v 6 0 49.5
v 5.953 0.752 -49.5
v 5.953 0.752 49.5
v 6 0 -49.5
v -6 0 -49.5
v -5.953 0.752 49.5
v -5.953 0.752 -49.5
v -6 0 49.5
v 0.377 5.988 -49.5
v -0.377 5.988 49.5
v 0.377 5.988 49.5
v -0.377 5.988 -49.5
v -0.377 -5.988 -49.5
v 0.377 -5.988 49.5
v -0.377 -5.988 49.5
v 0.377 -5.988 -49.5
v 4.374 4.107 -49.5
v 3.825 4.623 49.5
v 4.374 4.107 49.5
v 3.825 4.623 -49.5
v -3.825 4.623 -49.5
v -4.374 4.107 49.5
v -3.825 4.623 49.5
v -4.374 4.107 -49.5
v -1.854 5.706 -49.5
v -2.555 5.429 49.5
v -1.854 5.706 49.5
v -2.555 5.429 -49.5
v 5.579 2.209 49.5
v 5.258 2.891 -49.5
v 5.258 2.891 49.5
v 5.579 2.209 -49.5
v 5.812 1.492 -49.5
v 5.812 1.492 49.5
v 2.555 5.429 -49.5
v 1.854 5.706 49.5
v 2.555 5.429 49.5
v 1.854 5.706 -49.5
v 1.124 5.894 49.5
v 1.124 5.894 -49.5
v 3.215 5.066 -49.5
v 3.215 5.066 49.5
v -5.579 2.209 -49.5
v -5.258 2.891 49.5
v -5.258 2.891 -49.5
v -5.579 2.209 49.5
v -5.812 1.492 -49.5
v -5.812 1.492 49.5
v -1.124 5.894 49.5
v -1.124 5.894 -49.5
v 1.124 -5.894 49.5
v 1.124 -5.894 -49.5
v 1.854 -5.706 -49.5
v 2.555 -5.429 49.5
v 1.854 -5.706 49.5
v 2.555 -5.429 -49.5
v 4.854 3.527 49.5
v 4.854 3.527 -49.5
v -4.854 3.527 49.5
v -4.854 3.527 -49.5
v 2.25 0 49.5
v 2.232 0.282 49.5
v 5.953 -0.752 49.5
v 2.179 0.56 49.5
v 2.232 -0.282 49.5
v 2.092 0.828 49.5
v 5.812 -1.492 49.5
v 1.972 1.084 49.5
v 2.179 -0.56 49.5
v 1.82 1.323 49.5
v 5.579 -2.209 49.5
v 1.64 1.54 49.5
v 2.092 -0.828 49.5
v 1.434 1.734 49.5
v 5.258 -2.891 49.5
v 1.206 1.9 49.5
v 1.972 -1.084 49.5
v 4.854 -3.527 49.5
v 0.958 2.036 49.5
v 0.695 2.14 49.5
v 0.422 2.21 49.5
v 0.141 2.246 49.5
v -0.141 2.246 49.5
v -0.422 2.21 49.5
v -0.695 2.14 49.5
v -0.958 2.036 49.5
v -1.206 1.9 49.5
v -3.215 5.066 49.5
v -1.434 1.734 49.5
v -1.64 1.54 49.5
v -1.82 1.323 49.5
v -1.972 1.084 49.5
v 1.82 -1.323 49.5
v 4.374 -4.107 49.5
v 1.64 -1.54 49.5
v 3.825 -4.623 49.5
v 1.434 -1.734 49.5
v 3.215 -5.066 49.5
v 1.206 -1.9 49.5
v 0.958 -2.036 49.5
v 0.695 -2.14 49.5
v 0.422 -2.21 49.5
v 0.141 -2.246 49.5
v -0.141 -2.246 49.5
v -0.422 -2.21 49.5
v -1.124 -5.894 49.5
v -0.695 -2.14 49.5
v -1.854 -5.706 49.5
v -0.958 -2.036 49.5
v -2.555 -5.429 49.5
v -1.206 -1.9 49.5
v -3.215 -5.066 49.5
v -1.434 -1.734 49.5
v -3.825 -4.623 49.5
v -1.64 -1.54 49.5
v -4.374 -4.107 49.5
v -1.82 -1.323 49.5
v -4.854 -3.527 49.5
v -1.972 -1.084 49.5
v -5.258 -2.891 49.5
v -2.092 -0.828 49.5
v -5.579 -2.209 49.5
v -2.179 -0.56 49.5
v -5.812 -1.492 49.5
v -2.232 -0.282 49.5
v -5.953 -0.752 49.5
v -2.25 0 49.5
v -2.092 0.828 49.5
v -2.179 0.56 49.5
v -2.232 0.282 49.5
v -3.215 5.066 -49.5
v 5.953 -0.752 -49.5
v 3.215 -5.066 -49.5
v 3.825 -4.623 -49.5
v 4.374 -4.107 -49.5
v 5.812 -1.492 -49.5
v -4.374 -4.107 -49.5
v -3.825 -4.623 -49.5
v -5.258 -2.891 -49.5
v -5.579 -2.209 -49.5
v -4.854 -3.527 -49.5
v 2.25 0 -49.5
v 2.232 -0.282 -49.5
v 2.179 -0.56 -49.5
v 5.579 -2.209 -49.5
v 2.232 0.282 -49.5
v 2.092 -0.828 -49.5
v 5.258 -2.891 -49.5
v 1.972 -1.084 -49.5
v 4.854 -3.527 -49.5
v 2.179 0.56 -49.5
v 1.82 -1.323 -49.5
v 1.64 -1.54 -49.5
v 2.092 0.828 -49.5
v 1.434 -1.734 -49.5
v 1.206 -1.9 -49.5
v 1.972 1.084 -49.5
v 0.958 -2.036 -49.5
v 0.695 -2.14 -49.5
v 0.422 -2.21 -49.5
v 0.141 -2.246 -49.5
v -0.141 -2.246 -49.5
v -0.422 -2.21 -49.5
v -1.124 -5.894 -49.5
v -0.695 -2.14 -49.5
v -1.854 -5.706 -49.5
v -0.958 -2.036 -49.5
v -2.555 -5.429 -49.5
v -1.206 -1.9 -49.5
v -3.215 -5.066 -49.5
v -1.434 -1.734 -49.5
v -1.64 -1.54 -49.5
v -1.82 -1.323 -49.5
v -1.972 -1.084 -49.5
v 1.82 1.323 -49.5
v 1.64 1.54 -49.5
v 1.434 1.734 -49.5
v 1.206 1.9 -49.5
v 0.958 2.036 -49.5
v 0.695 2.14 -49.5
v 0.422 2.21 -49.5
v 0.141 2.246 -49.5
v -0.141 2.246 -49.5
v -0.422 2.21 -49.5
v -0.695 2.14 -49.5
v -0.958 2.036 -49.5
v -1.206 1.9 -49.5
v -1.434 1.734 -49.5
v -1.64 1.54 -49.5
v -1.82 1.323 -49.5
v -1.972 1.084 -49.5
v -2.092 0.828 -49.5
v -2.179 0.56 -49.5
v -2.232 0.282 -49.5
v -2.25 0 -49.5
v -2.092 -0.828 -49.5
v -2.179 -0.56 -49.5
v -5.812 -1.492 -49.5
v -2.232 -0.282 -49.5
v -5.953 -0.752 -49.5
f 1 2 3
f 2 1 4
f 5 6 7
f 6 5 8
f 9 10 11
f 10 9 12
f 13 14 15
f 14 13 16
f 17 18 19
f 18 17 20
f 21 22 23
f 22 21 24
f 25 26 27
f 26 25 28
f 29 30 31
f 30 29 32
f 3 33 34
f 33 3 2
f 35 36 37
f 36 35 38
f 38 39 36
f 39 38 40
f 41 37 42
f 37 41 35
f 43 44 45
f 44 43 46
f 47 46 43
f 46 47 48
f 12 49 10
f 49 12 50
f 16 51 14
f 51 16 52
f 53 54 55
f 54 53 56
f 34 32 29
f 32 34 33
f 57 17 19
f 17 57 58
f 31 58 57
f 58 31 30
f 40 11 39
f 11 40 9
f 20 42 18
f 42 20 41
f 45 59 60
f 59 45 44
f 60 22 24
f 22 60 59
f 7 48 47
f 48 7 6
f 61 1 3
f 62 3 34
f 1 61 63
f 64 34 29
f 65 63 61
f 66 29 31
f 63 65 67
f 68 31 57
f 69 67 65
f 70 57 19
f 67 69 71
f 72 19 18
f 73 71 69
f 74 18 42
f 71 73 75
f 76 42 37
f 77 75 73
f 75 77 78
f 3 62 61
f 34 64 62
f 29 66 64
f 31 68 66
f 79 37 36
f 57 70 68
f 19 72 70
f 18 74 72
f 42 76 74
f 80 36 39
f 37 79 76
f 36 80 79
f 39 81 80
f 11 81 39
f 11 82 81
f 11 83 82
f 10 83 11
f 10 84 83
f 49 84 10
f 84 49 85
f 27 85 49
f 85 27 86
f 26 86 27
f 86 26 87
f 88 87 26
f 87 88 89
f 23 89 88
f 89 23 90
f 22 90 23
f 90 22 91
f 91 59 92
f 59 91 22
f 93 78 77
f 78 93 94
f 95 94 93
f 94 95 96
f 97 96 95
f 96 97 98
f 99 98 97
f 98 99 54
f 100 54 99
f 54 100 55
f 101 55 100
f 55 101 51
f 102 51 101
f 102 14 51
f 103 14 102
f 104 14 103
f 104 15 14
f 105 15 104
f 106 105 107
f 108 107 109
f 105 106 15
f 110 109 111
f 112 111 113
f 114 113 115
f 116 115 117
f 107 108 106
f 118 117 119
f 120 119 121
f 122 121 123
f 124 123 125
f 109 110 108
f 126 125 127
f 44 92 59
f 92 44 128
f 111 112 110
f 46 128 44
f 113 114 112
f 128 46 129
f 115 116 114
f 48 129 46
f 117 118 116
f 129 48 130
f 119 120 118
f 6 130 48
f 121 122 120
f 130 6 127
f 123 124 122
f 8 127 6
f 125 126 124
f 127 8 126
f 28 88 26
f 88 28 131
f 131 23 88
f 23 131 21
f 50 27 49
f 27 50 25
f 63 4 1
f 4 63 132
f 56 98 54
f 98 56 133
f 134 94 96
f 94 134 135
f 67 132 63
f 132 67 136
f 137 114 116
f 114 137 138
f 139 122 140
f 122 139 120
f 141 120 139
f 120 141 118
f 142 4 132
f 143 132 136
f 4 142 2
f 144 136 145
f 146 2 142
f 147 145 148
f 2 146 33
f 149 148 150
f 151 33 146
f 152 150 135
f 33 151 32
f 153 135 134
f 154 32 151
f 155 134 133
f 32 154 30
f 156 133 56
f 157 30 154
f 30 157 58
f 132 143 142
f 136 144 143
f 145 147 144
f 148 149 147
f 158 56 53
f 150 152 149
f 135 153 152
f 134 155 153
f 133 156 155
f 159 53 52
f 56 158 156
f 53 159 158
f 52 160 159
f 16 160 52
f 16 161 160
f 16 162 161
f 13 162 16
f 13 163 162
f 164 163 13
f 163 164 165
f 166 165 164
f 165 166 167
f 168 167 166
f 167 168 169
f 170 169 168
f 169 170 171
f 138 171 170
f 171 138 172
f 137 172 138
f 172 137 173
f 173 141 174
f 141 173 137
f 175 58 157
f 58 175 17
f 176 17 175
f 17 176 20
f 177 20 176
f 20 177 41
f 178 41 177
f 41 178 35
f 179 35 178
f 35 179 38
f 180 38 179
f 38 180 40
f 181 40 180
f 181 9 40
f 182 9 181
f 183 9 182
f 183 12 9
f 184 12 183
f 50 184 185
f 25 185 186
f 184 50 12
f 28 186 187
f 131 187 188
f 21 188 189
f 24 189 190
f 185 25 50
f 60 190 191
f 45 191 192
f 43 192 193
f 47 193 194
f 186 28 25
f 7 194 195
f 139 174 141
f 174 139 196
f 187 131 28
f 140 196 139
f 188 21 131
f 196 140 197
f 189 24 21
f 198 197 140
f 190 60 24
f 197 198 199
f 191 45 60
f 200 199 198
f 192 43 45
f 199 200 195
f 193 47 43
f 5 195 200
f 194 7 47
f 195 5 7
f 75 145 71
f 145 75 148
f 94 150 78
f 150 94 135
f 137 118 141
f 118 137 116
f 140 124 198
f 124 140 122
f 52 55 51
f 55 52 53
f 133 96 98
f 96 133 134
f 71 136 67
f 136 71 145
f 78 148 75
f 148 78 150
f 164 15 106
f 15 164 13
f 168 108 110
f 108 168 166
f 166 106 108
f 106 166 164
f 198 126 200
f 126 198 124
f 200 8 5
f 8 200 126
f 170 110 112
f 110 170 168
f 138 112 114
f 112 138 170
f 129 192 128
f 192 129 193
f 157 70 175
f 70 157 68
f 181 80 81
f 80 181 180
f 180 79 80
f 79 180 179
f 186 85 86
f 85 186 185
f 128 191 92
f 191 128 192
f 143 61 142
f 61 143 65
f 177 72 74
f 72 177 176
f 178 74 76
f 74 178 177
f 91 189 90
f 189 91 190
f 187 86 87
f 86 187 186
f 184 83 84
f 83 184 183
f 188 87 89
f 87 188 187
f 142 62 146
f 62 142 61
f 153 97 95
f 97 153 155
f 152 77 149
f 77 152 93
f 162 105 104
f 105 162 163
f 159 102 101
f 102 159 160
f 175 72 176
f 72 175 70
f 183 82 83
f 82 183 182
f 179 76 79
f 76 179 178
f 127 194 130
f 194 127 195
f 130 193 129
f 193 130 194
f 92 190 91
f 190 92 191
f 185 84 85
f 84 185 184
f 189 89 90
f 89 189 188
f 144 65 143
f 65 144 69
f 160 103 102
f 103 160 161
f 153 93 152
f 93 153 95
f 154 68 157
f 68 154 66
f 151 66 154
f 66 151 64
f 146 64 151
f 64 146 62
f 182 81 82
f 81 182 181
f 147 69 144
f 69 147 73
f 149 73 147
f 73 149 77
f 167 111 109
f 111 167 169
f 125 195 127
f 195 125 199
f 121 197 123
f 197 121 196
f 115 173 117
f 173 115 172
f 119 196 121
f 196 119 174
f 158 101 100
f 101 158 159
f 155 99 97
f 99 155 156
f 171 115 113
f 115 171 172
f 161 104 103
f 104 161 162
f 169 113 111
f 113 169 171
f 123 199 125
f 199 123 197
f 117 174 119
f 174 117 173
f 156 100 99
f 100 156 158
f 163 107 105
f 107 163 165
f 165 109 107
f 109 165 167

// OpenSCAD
$fn = 50;


difference() {
	union() {
		translate(v = [0, 0, -49.5000000000]) {
			cylinder(h = 99, r = 6.0000000000);
		}
	}
	union() {
		translate(v = [0, 0, -100.0000000000]) {
			cylinder(h = 200, r = 2.2500000000);
		}
	}
}
